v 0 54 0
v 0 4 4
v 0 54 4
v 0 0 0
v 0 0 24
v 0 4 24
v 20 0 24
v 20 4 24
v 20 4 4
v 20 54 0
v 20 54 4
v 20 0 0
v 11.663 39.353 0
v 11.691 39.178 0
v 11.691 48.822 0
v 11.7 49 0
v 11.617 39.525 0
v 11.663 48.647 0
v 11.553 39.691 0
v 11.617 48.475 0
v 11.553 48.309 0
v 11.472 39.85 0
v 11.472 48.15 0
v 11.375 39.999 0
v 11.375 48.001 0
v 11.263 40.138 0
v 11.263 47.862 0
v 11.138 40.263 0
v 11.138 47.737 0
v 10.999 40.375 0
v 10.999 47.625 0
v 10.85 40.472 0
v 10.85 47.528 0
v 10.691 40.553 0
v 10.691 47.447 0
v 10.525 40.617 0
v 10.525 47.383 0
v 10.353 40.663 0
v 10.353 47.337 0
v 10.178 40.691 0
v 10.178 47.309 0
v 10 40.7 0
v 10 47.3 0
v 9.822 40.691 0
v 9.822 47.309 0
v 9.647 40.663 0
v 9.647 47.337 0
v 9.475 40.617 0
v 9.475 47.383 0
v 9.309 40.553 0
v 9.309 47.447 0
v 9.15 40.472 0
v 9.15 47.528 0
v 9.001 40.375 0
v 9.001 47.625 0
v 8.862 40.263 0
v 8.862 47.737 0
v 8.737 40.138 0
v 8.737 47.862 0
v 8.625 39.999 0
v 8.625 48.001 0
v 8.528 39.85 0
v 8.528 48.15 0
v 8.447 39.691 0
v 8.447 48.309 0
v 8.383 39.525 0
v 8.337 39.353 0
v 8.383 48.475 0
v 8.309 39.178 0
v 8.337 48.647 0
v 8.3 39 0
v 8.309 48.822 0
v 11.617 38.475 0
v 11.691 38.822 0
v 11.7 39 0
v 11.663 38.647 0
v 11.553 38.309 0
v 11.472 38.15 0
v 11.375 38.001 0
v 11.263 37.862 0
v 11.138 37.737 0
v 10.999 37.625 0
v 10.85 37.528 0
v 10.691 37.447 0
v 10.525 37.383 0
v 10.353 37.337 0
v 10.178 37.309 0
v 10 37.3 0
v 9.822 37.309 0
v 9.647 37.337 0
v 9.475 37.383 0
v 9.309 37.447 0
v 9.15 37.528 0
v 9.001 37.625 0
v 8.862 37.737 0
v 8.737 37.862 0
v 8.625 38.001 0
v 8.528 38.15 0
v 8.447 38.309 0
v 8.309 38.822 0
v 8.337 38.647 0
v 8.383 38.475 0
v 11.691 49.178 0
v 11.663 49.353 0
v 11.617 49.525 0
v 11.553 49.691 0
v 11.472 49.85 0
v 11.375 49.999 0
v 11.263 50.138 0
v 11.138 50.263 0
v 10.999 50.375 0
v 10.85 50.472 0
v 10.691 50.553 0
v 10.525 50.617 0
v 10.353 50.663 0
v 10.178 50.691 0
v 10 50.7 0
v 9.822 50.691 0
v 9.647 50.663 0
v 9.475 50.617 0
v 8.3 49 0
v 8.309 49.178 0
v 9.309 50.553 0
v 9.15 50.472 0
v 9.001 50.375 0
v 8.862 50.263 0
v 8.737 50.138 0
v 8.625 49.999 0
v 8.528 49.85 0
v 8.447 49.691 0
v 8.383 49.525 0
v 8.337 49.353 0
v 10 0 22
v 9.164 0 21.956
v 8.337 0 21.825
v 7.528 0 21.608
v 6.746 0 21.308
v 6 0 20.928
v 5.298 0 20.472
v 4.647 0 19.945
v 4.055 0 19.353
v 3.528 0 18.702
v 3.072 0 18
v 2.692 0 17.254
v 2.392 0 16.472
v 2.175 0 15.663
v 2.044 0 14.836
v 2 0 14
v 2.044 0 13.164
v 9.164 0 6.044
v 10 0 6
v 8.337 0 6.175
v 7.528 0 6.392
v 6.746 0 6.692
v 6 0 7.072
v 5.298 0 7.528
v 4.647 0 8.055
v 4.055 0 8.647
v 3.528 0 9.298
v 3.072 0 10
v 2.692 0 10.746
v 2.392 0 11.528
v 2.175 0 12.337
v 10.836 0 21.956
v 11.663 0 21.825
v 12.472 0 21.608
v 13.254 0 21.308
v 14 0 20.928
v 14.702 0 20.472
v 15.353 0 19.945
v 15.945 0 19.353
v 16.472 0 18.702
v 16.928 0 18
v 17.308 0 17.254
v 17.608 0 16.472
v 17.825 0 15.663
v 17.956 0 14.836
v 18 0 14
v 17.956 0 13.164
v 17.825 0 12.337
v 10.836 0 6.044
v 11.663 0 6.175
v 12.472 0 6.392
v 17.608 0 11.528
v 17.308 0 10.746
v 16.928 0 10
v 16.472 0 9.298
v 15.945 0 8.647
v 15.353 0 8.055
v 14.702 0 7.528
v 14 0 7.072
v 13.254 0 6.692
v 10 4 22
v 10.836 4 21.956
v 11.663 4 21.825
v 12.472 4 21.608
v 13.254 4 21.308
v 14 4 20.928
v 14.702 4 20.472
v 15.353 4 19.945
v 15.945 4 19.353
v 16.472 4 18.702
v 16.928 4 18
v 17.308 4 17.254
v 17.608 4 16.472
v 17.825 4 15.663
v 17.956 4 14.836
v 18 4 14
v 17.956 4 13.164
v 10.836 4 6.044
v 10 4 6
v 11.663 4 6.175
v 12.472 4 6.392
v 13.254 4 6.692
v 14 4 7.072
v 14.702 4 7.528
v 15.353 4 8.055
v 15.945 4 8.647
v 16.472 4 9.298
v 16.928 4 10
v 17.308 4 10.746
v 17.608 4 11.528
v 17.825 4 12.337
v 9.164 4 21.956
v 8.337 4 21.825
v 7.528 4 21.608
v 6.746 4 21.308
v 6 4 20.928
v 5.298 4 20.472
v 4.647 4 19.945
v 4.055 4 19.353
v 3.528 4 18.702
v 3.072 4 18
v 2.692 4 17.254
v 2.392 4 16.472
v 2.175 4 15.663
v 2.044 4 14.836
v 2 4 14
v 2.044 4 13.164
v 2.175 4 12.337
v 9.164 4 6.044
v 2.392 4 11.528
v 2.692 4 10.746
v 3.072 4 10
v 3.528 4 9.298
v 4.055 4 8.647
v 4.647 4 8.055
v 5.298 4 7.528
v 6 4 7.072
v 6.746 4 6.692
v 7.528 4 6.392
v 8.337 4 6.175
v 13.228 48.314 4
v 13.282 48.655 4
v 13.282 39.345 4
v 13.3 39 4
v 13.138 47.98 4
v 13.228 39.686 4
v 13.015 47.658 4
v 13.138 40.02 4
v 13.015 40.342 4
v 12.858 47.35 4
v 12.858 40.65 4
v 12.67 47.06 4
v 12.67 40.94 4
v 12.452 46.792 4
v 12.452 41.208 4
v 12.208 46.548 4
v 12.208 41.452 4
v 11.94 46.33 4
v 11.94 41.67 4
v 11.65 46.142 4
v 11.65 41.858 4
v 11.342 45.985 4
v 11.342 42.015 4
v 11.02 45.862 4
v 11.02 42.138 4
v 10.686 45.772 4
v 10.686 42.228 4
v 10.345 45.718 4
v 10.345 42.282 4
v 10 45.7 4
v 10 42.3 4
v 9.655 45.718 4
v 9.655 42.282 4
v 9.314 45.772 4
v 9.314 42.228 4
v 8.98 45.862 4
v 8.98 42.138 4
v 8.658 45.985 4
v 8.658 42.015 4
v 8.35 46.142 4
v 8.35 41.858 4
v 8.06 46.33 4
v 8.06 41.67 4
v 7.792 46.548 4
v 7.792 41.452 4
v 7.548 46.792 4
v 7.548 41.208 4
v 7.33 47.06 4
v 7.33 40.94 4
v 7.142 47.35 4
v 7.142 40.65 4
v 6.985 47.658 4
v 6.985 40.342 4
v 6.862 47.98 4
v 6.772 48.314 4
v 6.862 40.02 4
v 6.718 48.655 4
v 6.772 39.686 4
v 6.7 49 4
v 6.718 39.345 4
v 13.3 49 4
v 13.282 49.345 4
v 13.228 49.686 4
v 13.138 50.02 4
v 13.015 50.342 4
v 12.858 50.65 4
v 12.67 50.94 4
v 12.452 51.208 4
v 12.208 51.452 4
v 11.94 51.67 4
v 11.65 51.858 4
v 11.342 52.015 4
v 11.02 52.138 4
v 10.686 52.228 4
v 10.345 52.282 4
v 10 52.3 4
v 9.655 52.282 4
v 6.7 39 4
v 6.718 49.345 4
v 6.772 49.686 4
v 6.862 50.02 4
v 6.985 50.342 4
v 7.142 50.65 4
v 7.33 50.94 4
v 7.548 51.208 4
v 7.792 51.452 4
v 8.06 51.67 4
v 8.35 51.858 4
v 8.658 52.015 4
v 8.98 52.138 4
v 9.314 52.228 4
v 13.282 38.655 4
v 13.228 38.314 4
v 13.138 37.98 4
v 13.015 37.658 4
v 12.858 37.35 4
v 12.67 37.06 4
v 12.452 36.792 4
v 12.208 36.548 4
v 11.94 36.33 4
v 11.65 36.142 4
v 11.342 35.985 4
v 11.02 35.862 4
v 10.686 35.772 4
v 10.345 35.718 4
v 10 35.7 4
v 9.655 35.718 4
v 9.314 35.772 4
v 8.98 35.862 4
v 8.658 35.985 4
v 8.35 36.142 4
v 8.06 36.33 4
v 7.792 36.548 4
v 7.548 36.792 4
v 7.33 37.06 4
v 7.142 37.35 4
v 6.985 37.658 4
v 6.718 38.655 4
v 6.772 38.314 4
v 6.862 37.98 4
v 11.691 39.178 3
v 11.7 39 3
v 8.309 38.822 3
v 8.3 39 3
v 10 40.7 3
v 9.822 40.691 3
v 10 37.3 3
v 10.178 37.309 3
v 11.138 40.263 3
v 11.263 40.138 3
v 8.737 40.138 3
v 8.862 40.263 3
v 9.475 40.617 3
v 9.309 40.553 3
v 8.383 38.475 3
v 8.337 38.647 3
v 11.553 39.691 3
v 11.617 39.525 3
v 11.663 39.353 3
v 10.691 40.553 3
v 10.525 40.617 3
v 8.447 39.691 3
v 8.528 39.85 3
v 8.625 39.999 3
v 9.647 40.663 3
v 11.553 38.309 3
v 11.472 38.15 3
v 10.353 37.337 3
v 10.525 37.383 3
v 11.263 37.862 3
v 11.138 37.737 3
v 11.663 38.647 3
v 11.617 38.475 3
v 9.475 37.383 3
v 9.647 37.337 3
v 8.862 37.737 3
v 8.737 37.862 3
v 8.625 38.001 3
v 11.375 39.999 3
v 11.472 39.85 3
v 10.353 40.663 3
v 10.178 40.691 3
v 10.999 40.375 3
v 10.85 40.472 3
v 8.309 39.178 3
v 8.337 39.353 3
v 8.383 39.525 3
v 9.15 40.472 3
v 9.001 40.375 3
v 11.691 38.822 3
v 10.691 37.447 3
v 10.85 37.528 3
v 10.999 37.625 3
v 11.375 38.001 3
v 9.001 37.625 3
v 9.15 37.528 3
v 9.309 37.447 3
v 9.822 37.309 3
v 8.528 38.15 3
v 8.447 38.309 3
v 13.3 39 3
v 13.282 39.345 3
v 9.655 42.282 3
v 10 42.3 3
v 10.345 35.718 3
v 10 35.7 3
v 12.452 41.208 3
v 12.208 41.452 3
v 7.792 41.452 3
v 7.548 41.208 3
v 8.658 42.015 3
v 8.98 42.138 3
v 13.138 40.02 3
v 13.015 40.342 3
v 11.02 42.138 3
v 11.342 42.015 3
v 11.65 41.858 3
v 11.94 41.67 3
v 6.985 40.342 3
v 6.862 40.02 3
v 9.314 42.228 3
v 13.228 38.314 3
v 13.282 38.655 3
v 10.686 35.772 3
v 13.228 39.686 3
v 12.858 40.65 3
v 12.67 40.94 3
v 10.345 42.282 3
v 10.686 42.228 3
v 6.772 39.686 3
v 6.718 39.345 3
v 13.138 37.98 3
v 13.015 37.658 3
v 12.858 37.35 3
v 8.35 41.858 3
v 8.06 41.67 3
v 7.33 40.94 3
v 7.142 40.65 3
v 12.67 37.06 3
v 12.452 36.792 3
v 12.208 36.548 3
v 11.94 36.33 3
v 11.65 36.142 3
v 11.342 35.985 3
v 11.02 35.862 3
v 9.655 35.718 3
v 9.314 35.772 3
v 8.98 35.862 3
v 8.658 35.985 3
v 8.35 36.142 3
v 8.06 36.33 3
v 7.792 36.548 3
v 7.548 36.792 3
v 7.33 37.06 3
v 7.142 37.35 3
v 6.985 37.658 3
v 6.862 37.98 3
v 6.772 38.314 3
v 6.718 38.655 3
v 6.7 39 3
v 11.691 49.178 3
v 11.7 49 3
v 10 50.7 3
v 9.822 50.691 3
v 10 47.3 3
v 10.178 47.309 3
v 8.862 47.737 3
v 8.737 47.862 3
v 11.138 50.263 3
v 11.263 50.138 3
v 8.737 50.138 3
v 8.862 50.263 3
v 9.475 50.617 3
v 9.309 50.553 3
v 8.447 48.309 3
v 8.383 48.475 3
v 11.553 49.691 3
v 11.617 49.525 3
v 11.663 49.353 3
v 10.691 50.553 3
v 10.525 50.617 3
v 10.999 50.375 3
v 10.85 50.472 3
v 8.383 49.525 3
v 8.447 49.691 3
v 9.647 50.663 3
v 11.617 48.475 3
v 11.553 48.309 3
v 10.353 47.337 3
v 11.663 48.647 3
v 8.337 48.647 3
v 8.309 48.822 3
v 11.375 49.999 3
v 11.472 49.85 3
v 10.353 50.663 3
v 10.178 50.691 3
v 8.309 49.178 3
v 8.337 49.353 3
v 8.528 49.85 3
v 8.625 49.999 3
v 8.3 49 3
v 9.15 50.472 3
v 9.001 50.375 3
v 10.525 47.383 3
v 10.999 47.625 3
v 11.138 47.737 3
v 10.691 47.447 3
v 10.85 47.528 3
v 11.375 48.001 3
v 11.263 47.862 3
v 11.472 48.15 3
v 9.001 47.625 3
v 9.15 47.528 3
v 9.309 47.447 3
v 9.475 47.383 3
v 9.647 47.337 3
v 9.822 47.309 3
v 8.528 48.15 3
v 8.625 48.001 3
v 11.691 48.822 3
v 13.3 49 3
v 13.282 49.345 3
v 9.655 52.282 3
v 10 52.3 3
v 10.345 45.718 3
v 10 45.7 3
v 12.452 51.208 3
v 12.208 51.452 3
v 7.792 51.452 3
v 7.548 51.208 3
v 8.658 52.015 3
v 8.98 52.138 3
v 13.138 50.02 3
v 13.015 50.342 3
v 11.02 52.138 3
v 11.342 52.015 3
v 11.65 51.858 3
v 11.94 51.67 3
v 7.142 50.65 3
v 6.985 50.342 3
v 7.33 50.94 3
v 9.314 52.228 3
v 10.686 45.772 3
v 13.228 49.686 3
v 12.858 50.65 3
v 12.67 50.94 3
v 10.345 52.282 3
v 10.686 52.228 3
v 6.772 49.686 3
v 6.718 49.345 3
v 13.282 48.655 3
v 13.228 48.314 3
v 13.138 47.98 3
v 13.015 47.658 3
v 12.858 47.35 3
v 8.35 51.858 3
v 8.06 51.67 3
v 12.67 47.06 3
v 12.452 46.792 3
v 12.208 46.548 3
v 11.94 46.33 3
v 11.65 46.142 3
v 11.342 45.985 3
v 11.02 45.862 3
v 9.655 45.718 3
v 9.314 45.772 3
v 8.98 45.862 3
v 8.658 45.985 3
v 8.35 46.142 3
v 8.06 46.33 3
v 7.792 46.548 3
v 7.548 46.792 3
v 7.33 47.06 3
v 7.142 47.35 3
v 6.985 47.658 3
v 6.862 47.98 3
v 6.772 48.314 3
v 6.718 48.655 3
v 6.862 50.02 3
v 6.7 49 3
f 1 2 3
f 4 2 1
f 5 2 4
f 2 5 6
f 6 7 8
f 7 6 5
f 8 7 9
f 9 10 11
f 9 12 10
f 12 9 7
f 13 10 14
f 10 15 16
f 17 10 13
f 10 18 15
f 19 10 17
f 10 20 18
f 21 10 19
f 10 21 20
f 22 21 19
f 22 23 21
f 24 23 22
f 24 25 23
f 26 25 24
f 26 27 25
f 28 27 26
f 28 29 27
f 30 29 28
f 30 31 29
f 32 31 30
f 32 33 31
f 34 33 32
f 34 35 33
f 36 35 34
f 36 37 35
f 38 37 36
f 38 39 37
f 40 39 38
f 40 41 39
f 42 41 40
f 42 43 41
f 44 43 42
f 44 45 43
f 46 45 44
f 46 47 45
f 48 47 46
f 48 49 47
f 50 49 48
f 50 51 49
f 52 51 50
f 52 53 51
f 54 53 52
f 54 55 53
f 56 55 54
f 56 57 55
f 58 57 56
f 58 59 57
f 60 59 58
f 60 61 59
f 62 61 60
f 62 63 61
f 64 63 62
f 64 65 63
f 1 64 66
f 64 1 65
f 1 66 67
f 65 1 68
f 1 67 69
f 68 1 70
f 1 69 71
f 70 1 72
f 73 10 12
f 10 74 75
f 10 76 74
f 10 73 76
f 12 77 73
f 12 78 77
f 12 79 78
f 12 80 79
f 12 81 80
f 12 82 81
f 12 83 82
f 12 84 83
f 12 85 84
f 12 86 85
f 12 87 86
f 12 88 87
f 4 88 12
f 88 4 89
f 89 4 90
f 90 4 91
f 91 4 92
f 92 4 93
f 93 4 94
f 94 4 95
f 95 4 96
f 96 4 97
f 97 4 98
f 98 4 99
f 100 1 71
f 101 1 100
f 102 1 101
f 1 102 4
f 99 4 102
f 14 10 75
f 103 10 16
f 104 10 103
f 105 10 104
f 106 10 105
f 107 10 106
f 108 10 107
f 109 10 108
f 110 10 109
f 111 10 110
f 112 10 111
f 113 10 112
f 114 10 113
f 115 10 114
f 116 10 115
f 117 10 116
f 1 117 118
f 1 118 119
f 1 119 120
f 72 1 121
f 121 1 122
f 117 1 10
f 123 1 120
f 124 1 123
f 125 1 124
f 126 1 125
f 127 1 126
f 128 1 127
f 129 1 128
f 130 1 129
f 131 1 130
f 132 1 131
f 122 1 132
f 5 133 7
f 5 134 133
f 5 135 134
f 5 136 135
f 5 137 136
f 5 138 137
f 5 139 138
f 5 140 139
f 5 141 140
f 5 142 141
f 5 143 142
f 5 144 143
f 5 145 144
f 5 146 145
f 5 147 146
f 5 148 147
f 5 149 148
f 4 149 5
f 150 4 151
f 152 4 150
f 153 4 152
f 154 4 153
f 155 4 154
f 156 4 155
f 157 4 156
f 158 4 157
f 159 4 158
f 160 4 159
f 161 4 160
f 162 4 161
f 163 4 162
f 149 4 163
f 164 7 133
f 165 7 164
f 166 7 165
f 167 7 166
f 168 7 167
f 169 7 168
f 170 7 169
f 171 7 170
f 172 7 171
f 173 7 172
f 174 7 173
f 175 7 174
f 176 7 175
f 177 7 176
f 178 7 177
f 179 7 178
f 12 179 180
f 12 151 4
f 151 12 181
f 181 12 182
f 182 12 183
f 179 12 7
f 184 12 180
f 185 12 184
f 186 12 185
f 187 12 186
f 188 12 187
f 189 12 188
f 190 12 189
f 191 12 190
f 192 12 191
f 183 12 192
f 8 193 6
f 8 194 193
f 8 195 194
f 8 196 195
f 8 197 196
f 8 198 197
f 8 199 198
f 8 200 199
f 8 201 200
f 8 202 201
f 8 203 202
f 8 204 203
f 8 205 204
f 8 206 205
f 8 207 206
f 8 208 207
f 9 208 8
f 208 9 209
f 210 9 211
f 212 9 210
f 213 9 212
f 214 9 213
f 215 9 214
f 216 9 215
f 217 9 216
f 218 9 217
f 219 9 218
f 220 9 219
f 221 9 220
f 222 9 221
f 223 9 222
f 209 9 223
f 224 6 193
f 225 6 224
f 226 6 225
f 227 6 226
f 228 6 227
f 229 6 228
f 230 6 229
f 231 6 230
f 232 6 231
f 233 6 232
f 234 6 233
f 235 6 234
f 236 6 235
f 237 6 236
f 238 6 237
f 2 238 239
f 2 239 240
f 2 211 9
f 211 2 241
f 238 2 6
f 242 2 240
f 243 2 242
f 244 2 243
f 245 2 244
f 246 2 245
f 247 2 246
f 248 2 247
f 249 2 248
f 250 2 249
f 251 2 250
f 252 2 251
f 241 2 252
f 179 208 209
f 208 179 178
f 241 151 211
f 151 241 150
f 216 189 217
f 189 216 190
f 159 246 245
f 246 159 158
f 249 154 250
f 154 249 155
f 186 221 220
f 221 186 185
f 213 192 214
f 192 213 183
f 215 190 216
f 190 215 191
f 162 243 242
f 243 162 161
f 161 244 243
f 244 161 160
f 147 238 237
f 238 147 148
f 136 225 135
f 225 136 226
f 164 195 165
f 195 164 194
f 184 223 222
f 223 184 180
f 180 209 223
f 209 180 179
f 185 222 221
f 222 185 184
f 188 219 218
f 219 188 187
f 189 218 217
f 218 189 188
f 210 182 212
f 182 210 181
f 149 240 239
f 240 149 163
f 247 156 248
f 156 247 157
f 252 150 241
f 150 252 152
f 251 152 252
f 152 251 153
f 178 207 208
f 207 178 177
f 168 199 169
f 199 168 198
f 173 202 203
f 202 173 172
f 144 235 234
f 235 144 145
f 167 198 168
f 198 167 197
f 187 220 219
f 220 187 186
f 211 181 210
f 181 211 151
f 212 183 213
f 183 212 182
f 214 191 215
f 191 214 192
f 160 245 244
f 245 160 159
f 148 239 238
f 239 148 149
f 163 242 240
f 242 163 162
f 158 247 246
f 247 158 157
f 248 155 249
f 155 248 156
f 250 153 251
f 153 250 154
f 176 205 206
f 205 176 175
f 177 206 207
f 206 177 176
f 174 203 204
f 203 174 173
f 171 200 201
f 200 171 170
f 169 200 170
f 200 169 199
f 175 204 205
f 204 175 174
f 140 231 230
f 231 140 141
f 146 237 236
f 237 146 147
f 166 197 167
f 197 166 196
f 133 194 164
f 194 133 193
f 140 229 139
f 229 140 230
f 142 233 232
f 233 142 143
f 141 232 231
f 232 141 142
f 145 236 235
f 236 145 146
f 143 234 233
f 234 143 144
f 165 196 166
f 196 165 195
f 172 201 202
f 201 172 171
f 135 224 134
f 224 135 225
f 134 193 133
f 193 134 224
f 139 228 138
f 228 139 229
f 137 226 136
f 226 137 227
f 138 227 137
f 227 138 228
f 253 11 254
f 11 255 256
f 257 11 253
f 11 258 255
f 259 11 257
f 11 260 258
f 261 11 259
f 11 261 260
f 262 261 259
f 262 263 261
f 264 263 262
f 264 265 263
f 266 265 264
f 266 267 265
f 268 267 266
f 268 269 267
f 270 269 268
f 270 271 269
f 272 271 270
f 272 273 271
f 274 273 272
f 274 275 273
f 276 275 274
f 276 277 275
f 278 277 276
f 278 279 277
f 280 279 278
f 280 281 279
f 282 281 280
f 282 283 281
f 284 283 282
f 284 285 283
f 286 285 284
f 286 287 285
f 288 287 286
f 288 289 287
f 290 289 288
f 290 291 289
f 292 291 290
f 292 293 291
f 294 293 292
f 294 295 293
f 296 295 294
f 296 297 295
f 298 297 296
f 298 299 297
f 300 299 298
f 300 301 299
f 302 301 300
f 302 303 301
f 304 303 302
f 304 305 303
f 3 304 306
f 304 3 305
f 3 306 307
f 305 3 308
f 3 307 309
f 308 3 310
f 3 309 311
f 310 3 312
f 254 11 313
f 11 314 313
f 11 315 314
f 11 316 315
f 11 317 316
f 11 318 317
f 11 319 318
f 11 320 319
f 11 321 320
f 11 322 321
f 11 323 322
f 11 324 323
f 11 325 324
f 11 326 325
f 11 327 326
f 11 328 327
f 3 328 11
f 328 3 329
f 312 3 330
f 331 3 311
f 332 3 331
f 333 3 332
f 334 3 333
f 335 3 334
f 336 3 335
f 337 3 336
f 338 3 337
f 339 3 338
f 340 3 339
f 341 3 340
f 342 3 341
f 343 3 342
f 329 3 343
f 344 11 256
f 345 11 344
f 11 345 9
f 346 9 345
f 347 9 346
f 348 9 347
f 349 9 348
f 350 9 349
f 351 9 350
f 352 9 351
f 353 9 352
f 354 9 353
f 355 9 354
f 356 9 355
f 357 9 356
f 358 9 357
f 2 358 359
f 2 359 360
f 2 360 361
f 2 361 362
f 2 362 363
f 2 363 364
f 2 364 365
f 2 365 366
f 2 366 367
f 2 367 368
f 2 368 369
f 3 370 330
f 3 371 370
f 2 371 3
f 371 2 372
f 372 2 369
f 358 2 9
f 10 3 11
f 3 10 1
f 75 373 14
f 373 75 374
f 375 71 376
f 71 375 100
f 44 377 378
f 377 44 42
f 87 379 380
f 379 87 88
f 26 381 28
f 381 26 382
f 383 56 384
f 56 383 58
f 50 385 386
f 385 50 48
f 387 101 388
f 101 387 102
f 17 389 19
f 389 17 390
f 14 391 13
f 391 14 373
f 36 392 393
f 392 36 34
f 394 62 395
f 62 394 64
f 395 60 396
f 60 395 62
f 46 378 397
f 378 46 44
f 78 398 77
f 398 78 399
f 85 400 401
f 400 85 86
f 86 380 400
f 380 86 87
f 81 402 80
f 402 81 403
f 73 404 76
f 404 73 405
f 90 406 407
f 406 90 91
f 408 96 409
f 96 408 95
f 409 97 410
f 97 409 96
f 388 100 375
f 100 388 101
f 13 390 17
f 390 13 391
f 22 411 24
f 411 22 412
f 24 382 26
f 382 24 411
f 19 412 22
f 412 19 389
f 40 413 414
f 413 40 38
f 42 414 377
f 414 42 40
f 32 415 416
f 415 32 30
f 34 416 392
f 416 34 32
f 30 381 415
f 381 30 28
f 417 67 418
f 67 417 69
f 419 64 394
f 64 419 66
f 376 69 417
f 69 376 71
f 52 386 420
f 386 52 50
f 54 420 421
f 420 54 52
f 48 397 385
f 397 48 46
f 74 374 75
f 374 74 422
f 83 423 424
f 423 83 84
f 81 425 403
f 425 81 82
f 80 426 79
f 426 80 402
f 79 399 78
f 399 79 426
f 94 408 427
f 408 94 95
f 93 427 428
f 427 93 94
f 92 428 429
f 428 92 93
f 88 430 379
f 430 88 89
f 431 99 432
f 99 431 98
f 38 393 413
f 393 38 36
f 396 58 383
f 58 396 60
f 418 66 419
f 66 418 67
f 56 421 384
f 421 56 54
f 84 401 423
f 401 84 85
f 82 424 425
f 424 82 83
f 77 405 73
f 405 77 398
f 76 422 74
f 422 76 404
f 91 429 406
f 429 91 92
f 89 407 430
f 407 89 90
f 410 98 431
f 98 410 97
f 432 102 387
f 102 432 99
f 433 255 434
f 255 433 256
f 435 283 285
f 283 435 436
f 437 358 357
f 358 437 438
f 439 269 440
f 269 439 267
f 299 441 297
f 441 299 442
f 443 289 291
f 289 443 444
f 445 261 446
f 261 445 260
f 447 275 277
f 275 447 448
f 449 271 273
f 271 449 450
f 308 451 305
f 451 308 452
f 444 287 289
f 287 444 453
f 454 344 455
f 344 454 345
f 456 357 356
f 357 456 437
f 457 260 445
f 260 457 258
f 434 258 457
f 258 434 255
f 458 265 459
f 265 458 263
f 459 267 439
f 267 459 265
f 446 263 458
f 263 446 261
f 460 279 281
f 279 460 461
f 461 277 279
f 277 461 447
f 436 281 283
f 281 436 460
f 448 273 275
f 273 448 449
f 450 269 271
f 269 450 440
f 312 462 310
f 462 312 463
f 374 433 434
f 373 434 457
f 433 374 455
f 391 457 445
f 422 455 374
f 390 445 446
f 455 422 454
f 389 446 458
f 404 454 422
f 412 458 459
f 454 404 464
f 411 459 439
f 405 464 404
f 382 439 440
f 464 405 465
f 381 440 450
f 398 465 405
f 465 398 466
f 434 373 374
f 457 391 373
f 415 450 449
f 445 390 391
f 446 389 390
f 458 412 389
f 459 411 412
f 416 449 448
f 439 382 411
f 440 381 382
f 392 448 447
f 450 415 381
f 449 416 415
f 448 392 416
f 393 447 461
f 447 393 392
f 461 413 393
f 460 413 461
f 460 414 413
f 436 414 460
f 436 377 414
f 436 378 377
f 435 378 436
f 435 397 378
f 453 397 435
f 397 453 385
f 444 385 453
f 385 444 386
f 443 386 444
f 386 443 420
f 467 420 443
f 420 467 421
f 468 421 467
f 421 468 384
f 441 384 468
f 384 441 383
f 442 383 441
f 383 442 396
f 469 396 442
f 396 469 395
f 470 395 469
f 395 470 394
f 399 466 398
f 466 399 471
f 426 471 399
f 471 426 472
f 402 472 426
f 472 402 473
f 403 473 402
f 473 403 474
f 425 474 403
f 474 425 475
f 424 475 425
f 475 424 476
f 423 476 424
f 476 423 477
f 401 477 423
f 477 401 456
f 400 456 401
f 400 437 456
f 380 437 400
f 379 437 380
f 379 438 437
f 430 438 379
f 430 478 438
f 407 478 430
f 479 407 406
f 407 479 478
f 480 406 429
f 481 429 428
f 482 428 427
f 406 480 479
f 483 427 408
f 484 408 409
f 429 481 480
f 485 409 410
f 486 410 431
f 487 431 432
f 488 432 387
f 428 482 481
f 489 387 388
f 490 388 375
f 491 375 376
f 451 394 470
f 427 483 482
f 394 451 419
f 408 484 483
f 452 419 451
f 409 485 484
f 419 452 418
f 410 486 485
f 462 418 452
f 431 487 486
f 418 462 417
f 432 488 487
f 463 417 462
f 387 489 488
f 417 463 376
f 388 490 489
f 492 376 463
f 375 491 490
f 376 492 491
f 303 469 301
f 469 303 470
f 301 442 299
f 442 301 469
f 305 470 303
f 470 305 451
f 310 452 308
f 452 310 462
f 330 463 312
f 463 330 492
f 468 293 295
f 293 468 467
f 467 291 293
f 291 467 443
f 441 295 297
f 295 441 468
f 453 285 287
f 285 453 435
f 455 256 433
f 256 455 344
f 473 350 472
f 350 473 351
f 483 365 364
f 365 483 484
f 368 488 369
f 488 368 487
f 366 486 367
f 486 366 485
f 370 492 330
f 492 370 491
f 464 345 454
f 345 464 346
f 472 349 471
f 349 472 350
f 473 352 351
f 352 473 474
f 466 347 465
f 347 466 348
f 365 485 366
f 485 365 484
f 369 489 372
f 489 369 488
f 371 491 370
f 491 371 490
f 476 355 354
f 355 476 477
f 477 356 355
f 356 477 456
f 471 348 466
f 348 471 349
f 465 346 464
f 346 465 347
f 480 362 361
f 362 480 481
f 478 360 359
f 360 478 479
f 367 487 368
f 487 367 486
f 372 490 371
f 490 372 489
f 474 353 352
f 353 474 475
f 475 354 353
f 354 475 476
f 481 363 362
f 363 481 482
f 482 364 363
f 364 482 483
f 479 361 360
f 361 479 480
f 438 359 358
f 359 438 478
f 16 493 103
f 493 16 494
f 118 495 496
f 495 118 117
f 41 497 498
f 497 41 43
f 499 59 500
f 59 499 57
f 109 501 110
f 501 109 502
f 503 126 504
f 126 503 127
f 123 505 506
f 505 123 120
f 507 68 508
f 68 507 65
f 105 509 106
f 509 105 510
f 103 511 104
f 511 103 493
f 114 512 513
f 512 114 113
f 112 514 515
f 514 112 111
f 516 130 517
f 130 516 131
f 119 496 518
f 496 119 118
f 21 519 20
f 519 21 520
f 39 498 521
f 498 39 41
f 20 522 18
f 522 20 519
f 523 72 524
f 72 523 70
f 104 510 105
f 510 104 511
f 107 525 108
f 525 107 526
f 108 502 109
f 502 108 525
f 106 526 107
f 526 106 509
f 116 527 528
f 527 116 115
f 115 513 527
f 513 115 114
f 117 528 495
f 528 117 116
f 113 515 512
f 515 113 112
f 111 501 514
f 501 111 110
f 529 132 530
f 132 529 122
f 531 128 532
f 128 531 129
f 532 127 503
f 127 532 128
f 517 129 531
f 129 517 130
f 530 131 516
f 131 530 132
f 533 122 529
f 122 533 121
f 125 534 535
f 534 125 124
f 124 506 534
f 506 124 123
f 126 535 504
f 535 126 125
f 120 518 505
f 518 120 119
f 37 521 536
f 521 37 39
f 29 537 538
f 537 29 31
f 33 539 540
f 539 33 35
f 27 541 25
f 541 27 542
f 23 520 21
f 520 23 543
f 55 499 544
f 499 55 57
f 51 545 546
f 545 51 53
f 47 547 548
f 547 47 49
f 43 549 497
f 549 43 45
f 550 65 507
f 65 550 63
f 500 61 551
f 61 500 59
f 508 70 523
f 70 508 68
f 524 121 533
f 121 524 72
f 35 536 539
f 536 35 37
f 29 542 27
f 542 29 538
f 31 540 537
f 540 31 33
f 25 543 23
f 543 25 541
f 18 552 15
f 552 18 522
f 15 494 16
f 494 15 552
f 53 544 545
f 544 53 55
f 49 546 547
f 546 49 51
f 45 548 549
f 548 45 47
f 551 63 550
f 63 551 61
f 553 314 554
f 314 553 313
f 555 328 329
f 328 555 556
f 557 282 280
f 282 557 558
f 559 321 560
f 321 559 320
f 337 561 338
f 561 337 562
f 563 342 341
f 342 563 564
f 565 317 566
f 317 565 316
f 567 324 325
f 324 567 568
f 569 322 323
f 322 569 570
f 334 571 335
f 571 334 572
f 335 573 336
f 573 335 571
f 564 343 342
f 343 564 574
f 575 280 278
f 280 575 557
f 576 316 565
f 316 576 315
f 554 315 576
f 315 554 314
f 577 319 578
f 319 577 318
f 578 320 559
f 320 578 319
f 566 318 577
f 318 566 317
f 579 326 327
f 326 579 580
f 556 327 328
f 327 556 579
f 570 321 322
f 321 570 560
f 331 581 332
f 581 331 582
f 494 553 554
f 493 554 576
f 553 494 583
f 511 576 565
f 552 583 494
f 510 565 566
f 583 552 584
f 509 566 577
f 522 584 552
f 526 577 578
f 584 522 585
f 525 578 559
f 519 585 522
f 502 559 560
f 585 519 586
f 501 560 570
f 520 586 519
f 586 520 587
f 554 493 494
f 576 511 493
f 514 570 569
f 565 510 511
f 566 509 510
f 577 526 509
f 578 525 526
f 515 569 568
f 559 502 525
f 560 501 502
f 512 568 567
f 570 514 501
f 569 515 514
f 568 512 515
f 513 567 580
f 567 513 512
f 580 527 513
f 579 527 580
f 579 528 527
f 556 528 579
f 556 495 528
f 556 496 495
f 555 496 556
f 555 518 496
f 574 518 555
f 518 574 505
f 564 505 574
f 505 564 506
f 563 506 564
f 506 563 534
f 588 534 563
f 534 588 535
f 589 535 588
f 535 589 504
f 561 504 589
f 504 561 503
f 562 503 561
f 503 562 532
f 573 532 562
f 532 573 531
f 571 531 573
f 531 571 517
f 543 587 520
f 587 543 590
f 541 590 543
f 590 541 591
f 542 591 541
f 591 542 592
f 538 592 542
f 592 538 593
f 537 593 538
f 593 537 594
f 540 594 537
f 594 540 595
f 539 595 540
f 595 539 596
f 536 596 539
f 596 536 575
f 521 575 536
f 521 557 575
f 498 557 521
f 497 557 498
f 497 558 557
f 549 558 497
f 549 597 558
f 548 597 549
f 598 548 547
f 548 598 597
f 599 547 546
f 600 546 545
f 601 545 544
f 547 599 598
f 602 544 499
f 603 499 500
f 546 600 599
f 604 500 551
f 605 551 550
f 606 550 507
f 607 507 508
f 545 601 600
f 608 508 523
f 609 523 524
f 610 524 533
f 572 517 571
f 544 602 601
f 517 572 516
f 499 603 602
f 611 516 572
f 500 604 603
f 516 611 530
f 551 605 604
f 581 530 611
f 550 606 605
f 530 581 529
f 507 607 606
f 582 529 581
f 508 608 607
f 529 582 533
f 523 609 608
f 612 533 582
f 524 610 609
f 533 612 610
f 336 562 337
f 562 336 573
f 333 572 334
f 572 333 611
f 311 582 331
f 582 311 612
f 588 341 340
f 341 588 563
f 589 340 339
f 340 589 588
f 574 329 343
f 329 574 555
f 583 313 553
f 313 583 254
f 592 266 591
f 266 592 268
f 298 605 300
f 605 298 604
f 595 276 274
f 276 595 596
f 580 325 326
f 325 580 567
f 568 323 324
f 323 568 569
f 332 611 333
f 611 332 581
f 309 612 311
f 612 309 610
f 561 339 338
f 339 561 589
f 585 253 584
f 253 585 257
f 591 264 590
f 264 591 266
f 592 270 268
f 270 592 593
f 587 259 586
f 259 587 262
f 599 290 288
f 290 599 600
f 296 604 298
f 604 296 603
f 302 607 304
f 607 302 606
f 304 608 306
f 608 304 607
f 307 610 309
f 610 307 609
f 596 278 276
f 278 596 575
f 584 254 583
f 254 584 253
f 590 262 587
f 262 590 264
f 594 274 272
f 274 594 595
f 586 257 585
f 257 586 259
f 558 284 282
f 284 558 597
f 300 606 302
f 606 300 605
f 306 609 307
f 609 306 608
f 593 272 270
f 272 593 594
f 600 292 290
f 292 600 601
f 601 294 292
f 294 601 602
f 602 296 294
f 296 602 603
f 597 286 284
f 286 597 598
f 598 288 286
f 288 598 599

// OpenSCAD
$fn = 60;

t = 4;

module main() {
    difference() {
        cube([20, t, 20 + t]);
        translate([20/2, 0, t + 20/2]) rotate([-90, 0, 0]) cylinder(h = t, d = 16);
    }
    difference() {
        cube([20, t + 50, t]);
        translate([20/2, t + 35, 0]) cylinder(h = t, d = 3.4);
        translate([20/2, t + 35, t - 1]) cylinder(h = t, d = 6.6);
        
        translate([20/2, t + 45, 0]) cylinder(h = t, d = 3.4);
        translate([20/2, t + 45, t - 1]) cylinder(h = t, d = 6.6);
    }
}

main();
